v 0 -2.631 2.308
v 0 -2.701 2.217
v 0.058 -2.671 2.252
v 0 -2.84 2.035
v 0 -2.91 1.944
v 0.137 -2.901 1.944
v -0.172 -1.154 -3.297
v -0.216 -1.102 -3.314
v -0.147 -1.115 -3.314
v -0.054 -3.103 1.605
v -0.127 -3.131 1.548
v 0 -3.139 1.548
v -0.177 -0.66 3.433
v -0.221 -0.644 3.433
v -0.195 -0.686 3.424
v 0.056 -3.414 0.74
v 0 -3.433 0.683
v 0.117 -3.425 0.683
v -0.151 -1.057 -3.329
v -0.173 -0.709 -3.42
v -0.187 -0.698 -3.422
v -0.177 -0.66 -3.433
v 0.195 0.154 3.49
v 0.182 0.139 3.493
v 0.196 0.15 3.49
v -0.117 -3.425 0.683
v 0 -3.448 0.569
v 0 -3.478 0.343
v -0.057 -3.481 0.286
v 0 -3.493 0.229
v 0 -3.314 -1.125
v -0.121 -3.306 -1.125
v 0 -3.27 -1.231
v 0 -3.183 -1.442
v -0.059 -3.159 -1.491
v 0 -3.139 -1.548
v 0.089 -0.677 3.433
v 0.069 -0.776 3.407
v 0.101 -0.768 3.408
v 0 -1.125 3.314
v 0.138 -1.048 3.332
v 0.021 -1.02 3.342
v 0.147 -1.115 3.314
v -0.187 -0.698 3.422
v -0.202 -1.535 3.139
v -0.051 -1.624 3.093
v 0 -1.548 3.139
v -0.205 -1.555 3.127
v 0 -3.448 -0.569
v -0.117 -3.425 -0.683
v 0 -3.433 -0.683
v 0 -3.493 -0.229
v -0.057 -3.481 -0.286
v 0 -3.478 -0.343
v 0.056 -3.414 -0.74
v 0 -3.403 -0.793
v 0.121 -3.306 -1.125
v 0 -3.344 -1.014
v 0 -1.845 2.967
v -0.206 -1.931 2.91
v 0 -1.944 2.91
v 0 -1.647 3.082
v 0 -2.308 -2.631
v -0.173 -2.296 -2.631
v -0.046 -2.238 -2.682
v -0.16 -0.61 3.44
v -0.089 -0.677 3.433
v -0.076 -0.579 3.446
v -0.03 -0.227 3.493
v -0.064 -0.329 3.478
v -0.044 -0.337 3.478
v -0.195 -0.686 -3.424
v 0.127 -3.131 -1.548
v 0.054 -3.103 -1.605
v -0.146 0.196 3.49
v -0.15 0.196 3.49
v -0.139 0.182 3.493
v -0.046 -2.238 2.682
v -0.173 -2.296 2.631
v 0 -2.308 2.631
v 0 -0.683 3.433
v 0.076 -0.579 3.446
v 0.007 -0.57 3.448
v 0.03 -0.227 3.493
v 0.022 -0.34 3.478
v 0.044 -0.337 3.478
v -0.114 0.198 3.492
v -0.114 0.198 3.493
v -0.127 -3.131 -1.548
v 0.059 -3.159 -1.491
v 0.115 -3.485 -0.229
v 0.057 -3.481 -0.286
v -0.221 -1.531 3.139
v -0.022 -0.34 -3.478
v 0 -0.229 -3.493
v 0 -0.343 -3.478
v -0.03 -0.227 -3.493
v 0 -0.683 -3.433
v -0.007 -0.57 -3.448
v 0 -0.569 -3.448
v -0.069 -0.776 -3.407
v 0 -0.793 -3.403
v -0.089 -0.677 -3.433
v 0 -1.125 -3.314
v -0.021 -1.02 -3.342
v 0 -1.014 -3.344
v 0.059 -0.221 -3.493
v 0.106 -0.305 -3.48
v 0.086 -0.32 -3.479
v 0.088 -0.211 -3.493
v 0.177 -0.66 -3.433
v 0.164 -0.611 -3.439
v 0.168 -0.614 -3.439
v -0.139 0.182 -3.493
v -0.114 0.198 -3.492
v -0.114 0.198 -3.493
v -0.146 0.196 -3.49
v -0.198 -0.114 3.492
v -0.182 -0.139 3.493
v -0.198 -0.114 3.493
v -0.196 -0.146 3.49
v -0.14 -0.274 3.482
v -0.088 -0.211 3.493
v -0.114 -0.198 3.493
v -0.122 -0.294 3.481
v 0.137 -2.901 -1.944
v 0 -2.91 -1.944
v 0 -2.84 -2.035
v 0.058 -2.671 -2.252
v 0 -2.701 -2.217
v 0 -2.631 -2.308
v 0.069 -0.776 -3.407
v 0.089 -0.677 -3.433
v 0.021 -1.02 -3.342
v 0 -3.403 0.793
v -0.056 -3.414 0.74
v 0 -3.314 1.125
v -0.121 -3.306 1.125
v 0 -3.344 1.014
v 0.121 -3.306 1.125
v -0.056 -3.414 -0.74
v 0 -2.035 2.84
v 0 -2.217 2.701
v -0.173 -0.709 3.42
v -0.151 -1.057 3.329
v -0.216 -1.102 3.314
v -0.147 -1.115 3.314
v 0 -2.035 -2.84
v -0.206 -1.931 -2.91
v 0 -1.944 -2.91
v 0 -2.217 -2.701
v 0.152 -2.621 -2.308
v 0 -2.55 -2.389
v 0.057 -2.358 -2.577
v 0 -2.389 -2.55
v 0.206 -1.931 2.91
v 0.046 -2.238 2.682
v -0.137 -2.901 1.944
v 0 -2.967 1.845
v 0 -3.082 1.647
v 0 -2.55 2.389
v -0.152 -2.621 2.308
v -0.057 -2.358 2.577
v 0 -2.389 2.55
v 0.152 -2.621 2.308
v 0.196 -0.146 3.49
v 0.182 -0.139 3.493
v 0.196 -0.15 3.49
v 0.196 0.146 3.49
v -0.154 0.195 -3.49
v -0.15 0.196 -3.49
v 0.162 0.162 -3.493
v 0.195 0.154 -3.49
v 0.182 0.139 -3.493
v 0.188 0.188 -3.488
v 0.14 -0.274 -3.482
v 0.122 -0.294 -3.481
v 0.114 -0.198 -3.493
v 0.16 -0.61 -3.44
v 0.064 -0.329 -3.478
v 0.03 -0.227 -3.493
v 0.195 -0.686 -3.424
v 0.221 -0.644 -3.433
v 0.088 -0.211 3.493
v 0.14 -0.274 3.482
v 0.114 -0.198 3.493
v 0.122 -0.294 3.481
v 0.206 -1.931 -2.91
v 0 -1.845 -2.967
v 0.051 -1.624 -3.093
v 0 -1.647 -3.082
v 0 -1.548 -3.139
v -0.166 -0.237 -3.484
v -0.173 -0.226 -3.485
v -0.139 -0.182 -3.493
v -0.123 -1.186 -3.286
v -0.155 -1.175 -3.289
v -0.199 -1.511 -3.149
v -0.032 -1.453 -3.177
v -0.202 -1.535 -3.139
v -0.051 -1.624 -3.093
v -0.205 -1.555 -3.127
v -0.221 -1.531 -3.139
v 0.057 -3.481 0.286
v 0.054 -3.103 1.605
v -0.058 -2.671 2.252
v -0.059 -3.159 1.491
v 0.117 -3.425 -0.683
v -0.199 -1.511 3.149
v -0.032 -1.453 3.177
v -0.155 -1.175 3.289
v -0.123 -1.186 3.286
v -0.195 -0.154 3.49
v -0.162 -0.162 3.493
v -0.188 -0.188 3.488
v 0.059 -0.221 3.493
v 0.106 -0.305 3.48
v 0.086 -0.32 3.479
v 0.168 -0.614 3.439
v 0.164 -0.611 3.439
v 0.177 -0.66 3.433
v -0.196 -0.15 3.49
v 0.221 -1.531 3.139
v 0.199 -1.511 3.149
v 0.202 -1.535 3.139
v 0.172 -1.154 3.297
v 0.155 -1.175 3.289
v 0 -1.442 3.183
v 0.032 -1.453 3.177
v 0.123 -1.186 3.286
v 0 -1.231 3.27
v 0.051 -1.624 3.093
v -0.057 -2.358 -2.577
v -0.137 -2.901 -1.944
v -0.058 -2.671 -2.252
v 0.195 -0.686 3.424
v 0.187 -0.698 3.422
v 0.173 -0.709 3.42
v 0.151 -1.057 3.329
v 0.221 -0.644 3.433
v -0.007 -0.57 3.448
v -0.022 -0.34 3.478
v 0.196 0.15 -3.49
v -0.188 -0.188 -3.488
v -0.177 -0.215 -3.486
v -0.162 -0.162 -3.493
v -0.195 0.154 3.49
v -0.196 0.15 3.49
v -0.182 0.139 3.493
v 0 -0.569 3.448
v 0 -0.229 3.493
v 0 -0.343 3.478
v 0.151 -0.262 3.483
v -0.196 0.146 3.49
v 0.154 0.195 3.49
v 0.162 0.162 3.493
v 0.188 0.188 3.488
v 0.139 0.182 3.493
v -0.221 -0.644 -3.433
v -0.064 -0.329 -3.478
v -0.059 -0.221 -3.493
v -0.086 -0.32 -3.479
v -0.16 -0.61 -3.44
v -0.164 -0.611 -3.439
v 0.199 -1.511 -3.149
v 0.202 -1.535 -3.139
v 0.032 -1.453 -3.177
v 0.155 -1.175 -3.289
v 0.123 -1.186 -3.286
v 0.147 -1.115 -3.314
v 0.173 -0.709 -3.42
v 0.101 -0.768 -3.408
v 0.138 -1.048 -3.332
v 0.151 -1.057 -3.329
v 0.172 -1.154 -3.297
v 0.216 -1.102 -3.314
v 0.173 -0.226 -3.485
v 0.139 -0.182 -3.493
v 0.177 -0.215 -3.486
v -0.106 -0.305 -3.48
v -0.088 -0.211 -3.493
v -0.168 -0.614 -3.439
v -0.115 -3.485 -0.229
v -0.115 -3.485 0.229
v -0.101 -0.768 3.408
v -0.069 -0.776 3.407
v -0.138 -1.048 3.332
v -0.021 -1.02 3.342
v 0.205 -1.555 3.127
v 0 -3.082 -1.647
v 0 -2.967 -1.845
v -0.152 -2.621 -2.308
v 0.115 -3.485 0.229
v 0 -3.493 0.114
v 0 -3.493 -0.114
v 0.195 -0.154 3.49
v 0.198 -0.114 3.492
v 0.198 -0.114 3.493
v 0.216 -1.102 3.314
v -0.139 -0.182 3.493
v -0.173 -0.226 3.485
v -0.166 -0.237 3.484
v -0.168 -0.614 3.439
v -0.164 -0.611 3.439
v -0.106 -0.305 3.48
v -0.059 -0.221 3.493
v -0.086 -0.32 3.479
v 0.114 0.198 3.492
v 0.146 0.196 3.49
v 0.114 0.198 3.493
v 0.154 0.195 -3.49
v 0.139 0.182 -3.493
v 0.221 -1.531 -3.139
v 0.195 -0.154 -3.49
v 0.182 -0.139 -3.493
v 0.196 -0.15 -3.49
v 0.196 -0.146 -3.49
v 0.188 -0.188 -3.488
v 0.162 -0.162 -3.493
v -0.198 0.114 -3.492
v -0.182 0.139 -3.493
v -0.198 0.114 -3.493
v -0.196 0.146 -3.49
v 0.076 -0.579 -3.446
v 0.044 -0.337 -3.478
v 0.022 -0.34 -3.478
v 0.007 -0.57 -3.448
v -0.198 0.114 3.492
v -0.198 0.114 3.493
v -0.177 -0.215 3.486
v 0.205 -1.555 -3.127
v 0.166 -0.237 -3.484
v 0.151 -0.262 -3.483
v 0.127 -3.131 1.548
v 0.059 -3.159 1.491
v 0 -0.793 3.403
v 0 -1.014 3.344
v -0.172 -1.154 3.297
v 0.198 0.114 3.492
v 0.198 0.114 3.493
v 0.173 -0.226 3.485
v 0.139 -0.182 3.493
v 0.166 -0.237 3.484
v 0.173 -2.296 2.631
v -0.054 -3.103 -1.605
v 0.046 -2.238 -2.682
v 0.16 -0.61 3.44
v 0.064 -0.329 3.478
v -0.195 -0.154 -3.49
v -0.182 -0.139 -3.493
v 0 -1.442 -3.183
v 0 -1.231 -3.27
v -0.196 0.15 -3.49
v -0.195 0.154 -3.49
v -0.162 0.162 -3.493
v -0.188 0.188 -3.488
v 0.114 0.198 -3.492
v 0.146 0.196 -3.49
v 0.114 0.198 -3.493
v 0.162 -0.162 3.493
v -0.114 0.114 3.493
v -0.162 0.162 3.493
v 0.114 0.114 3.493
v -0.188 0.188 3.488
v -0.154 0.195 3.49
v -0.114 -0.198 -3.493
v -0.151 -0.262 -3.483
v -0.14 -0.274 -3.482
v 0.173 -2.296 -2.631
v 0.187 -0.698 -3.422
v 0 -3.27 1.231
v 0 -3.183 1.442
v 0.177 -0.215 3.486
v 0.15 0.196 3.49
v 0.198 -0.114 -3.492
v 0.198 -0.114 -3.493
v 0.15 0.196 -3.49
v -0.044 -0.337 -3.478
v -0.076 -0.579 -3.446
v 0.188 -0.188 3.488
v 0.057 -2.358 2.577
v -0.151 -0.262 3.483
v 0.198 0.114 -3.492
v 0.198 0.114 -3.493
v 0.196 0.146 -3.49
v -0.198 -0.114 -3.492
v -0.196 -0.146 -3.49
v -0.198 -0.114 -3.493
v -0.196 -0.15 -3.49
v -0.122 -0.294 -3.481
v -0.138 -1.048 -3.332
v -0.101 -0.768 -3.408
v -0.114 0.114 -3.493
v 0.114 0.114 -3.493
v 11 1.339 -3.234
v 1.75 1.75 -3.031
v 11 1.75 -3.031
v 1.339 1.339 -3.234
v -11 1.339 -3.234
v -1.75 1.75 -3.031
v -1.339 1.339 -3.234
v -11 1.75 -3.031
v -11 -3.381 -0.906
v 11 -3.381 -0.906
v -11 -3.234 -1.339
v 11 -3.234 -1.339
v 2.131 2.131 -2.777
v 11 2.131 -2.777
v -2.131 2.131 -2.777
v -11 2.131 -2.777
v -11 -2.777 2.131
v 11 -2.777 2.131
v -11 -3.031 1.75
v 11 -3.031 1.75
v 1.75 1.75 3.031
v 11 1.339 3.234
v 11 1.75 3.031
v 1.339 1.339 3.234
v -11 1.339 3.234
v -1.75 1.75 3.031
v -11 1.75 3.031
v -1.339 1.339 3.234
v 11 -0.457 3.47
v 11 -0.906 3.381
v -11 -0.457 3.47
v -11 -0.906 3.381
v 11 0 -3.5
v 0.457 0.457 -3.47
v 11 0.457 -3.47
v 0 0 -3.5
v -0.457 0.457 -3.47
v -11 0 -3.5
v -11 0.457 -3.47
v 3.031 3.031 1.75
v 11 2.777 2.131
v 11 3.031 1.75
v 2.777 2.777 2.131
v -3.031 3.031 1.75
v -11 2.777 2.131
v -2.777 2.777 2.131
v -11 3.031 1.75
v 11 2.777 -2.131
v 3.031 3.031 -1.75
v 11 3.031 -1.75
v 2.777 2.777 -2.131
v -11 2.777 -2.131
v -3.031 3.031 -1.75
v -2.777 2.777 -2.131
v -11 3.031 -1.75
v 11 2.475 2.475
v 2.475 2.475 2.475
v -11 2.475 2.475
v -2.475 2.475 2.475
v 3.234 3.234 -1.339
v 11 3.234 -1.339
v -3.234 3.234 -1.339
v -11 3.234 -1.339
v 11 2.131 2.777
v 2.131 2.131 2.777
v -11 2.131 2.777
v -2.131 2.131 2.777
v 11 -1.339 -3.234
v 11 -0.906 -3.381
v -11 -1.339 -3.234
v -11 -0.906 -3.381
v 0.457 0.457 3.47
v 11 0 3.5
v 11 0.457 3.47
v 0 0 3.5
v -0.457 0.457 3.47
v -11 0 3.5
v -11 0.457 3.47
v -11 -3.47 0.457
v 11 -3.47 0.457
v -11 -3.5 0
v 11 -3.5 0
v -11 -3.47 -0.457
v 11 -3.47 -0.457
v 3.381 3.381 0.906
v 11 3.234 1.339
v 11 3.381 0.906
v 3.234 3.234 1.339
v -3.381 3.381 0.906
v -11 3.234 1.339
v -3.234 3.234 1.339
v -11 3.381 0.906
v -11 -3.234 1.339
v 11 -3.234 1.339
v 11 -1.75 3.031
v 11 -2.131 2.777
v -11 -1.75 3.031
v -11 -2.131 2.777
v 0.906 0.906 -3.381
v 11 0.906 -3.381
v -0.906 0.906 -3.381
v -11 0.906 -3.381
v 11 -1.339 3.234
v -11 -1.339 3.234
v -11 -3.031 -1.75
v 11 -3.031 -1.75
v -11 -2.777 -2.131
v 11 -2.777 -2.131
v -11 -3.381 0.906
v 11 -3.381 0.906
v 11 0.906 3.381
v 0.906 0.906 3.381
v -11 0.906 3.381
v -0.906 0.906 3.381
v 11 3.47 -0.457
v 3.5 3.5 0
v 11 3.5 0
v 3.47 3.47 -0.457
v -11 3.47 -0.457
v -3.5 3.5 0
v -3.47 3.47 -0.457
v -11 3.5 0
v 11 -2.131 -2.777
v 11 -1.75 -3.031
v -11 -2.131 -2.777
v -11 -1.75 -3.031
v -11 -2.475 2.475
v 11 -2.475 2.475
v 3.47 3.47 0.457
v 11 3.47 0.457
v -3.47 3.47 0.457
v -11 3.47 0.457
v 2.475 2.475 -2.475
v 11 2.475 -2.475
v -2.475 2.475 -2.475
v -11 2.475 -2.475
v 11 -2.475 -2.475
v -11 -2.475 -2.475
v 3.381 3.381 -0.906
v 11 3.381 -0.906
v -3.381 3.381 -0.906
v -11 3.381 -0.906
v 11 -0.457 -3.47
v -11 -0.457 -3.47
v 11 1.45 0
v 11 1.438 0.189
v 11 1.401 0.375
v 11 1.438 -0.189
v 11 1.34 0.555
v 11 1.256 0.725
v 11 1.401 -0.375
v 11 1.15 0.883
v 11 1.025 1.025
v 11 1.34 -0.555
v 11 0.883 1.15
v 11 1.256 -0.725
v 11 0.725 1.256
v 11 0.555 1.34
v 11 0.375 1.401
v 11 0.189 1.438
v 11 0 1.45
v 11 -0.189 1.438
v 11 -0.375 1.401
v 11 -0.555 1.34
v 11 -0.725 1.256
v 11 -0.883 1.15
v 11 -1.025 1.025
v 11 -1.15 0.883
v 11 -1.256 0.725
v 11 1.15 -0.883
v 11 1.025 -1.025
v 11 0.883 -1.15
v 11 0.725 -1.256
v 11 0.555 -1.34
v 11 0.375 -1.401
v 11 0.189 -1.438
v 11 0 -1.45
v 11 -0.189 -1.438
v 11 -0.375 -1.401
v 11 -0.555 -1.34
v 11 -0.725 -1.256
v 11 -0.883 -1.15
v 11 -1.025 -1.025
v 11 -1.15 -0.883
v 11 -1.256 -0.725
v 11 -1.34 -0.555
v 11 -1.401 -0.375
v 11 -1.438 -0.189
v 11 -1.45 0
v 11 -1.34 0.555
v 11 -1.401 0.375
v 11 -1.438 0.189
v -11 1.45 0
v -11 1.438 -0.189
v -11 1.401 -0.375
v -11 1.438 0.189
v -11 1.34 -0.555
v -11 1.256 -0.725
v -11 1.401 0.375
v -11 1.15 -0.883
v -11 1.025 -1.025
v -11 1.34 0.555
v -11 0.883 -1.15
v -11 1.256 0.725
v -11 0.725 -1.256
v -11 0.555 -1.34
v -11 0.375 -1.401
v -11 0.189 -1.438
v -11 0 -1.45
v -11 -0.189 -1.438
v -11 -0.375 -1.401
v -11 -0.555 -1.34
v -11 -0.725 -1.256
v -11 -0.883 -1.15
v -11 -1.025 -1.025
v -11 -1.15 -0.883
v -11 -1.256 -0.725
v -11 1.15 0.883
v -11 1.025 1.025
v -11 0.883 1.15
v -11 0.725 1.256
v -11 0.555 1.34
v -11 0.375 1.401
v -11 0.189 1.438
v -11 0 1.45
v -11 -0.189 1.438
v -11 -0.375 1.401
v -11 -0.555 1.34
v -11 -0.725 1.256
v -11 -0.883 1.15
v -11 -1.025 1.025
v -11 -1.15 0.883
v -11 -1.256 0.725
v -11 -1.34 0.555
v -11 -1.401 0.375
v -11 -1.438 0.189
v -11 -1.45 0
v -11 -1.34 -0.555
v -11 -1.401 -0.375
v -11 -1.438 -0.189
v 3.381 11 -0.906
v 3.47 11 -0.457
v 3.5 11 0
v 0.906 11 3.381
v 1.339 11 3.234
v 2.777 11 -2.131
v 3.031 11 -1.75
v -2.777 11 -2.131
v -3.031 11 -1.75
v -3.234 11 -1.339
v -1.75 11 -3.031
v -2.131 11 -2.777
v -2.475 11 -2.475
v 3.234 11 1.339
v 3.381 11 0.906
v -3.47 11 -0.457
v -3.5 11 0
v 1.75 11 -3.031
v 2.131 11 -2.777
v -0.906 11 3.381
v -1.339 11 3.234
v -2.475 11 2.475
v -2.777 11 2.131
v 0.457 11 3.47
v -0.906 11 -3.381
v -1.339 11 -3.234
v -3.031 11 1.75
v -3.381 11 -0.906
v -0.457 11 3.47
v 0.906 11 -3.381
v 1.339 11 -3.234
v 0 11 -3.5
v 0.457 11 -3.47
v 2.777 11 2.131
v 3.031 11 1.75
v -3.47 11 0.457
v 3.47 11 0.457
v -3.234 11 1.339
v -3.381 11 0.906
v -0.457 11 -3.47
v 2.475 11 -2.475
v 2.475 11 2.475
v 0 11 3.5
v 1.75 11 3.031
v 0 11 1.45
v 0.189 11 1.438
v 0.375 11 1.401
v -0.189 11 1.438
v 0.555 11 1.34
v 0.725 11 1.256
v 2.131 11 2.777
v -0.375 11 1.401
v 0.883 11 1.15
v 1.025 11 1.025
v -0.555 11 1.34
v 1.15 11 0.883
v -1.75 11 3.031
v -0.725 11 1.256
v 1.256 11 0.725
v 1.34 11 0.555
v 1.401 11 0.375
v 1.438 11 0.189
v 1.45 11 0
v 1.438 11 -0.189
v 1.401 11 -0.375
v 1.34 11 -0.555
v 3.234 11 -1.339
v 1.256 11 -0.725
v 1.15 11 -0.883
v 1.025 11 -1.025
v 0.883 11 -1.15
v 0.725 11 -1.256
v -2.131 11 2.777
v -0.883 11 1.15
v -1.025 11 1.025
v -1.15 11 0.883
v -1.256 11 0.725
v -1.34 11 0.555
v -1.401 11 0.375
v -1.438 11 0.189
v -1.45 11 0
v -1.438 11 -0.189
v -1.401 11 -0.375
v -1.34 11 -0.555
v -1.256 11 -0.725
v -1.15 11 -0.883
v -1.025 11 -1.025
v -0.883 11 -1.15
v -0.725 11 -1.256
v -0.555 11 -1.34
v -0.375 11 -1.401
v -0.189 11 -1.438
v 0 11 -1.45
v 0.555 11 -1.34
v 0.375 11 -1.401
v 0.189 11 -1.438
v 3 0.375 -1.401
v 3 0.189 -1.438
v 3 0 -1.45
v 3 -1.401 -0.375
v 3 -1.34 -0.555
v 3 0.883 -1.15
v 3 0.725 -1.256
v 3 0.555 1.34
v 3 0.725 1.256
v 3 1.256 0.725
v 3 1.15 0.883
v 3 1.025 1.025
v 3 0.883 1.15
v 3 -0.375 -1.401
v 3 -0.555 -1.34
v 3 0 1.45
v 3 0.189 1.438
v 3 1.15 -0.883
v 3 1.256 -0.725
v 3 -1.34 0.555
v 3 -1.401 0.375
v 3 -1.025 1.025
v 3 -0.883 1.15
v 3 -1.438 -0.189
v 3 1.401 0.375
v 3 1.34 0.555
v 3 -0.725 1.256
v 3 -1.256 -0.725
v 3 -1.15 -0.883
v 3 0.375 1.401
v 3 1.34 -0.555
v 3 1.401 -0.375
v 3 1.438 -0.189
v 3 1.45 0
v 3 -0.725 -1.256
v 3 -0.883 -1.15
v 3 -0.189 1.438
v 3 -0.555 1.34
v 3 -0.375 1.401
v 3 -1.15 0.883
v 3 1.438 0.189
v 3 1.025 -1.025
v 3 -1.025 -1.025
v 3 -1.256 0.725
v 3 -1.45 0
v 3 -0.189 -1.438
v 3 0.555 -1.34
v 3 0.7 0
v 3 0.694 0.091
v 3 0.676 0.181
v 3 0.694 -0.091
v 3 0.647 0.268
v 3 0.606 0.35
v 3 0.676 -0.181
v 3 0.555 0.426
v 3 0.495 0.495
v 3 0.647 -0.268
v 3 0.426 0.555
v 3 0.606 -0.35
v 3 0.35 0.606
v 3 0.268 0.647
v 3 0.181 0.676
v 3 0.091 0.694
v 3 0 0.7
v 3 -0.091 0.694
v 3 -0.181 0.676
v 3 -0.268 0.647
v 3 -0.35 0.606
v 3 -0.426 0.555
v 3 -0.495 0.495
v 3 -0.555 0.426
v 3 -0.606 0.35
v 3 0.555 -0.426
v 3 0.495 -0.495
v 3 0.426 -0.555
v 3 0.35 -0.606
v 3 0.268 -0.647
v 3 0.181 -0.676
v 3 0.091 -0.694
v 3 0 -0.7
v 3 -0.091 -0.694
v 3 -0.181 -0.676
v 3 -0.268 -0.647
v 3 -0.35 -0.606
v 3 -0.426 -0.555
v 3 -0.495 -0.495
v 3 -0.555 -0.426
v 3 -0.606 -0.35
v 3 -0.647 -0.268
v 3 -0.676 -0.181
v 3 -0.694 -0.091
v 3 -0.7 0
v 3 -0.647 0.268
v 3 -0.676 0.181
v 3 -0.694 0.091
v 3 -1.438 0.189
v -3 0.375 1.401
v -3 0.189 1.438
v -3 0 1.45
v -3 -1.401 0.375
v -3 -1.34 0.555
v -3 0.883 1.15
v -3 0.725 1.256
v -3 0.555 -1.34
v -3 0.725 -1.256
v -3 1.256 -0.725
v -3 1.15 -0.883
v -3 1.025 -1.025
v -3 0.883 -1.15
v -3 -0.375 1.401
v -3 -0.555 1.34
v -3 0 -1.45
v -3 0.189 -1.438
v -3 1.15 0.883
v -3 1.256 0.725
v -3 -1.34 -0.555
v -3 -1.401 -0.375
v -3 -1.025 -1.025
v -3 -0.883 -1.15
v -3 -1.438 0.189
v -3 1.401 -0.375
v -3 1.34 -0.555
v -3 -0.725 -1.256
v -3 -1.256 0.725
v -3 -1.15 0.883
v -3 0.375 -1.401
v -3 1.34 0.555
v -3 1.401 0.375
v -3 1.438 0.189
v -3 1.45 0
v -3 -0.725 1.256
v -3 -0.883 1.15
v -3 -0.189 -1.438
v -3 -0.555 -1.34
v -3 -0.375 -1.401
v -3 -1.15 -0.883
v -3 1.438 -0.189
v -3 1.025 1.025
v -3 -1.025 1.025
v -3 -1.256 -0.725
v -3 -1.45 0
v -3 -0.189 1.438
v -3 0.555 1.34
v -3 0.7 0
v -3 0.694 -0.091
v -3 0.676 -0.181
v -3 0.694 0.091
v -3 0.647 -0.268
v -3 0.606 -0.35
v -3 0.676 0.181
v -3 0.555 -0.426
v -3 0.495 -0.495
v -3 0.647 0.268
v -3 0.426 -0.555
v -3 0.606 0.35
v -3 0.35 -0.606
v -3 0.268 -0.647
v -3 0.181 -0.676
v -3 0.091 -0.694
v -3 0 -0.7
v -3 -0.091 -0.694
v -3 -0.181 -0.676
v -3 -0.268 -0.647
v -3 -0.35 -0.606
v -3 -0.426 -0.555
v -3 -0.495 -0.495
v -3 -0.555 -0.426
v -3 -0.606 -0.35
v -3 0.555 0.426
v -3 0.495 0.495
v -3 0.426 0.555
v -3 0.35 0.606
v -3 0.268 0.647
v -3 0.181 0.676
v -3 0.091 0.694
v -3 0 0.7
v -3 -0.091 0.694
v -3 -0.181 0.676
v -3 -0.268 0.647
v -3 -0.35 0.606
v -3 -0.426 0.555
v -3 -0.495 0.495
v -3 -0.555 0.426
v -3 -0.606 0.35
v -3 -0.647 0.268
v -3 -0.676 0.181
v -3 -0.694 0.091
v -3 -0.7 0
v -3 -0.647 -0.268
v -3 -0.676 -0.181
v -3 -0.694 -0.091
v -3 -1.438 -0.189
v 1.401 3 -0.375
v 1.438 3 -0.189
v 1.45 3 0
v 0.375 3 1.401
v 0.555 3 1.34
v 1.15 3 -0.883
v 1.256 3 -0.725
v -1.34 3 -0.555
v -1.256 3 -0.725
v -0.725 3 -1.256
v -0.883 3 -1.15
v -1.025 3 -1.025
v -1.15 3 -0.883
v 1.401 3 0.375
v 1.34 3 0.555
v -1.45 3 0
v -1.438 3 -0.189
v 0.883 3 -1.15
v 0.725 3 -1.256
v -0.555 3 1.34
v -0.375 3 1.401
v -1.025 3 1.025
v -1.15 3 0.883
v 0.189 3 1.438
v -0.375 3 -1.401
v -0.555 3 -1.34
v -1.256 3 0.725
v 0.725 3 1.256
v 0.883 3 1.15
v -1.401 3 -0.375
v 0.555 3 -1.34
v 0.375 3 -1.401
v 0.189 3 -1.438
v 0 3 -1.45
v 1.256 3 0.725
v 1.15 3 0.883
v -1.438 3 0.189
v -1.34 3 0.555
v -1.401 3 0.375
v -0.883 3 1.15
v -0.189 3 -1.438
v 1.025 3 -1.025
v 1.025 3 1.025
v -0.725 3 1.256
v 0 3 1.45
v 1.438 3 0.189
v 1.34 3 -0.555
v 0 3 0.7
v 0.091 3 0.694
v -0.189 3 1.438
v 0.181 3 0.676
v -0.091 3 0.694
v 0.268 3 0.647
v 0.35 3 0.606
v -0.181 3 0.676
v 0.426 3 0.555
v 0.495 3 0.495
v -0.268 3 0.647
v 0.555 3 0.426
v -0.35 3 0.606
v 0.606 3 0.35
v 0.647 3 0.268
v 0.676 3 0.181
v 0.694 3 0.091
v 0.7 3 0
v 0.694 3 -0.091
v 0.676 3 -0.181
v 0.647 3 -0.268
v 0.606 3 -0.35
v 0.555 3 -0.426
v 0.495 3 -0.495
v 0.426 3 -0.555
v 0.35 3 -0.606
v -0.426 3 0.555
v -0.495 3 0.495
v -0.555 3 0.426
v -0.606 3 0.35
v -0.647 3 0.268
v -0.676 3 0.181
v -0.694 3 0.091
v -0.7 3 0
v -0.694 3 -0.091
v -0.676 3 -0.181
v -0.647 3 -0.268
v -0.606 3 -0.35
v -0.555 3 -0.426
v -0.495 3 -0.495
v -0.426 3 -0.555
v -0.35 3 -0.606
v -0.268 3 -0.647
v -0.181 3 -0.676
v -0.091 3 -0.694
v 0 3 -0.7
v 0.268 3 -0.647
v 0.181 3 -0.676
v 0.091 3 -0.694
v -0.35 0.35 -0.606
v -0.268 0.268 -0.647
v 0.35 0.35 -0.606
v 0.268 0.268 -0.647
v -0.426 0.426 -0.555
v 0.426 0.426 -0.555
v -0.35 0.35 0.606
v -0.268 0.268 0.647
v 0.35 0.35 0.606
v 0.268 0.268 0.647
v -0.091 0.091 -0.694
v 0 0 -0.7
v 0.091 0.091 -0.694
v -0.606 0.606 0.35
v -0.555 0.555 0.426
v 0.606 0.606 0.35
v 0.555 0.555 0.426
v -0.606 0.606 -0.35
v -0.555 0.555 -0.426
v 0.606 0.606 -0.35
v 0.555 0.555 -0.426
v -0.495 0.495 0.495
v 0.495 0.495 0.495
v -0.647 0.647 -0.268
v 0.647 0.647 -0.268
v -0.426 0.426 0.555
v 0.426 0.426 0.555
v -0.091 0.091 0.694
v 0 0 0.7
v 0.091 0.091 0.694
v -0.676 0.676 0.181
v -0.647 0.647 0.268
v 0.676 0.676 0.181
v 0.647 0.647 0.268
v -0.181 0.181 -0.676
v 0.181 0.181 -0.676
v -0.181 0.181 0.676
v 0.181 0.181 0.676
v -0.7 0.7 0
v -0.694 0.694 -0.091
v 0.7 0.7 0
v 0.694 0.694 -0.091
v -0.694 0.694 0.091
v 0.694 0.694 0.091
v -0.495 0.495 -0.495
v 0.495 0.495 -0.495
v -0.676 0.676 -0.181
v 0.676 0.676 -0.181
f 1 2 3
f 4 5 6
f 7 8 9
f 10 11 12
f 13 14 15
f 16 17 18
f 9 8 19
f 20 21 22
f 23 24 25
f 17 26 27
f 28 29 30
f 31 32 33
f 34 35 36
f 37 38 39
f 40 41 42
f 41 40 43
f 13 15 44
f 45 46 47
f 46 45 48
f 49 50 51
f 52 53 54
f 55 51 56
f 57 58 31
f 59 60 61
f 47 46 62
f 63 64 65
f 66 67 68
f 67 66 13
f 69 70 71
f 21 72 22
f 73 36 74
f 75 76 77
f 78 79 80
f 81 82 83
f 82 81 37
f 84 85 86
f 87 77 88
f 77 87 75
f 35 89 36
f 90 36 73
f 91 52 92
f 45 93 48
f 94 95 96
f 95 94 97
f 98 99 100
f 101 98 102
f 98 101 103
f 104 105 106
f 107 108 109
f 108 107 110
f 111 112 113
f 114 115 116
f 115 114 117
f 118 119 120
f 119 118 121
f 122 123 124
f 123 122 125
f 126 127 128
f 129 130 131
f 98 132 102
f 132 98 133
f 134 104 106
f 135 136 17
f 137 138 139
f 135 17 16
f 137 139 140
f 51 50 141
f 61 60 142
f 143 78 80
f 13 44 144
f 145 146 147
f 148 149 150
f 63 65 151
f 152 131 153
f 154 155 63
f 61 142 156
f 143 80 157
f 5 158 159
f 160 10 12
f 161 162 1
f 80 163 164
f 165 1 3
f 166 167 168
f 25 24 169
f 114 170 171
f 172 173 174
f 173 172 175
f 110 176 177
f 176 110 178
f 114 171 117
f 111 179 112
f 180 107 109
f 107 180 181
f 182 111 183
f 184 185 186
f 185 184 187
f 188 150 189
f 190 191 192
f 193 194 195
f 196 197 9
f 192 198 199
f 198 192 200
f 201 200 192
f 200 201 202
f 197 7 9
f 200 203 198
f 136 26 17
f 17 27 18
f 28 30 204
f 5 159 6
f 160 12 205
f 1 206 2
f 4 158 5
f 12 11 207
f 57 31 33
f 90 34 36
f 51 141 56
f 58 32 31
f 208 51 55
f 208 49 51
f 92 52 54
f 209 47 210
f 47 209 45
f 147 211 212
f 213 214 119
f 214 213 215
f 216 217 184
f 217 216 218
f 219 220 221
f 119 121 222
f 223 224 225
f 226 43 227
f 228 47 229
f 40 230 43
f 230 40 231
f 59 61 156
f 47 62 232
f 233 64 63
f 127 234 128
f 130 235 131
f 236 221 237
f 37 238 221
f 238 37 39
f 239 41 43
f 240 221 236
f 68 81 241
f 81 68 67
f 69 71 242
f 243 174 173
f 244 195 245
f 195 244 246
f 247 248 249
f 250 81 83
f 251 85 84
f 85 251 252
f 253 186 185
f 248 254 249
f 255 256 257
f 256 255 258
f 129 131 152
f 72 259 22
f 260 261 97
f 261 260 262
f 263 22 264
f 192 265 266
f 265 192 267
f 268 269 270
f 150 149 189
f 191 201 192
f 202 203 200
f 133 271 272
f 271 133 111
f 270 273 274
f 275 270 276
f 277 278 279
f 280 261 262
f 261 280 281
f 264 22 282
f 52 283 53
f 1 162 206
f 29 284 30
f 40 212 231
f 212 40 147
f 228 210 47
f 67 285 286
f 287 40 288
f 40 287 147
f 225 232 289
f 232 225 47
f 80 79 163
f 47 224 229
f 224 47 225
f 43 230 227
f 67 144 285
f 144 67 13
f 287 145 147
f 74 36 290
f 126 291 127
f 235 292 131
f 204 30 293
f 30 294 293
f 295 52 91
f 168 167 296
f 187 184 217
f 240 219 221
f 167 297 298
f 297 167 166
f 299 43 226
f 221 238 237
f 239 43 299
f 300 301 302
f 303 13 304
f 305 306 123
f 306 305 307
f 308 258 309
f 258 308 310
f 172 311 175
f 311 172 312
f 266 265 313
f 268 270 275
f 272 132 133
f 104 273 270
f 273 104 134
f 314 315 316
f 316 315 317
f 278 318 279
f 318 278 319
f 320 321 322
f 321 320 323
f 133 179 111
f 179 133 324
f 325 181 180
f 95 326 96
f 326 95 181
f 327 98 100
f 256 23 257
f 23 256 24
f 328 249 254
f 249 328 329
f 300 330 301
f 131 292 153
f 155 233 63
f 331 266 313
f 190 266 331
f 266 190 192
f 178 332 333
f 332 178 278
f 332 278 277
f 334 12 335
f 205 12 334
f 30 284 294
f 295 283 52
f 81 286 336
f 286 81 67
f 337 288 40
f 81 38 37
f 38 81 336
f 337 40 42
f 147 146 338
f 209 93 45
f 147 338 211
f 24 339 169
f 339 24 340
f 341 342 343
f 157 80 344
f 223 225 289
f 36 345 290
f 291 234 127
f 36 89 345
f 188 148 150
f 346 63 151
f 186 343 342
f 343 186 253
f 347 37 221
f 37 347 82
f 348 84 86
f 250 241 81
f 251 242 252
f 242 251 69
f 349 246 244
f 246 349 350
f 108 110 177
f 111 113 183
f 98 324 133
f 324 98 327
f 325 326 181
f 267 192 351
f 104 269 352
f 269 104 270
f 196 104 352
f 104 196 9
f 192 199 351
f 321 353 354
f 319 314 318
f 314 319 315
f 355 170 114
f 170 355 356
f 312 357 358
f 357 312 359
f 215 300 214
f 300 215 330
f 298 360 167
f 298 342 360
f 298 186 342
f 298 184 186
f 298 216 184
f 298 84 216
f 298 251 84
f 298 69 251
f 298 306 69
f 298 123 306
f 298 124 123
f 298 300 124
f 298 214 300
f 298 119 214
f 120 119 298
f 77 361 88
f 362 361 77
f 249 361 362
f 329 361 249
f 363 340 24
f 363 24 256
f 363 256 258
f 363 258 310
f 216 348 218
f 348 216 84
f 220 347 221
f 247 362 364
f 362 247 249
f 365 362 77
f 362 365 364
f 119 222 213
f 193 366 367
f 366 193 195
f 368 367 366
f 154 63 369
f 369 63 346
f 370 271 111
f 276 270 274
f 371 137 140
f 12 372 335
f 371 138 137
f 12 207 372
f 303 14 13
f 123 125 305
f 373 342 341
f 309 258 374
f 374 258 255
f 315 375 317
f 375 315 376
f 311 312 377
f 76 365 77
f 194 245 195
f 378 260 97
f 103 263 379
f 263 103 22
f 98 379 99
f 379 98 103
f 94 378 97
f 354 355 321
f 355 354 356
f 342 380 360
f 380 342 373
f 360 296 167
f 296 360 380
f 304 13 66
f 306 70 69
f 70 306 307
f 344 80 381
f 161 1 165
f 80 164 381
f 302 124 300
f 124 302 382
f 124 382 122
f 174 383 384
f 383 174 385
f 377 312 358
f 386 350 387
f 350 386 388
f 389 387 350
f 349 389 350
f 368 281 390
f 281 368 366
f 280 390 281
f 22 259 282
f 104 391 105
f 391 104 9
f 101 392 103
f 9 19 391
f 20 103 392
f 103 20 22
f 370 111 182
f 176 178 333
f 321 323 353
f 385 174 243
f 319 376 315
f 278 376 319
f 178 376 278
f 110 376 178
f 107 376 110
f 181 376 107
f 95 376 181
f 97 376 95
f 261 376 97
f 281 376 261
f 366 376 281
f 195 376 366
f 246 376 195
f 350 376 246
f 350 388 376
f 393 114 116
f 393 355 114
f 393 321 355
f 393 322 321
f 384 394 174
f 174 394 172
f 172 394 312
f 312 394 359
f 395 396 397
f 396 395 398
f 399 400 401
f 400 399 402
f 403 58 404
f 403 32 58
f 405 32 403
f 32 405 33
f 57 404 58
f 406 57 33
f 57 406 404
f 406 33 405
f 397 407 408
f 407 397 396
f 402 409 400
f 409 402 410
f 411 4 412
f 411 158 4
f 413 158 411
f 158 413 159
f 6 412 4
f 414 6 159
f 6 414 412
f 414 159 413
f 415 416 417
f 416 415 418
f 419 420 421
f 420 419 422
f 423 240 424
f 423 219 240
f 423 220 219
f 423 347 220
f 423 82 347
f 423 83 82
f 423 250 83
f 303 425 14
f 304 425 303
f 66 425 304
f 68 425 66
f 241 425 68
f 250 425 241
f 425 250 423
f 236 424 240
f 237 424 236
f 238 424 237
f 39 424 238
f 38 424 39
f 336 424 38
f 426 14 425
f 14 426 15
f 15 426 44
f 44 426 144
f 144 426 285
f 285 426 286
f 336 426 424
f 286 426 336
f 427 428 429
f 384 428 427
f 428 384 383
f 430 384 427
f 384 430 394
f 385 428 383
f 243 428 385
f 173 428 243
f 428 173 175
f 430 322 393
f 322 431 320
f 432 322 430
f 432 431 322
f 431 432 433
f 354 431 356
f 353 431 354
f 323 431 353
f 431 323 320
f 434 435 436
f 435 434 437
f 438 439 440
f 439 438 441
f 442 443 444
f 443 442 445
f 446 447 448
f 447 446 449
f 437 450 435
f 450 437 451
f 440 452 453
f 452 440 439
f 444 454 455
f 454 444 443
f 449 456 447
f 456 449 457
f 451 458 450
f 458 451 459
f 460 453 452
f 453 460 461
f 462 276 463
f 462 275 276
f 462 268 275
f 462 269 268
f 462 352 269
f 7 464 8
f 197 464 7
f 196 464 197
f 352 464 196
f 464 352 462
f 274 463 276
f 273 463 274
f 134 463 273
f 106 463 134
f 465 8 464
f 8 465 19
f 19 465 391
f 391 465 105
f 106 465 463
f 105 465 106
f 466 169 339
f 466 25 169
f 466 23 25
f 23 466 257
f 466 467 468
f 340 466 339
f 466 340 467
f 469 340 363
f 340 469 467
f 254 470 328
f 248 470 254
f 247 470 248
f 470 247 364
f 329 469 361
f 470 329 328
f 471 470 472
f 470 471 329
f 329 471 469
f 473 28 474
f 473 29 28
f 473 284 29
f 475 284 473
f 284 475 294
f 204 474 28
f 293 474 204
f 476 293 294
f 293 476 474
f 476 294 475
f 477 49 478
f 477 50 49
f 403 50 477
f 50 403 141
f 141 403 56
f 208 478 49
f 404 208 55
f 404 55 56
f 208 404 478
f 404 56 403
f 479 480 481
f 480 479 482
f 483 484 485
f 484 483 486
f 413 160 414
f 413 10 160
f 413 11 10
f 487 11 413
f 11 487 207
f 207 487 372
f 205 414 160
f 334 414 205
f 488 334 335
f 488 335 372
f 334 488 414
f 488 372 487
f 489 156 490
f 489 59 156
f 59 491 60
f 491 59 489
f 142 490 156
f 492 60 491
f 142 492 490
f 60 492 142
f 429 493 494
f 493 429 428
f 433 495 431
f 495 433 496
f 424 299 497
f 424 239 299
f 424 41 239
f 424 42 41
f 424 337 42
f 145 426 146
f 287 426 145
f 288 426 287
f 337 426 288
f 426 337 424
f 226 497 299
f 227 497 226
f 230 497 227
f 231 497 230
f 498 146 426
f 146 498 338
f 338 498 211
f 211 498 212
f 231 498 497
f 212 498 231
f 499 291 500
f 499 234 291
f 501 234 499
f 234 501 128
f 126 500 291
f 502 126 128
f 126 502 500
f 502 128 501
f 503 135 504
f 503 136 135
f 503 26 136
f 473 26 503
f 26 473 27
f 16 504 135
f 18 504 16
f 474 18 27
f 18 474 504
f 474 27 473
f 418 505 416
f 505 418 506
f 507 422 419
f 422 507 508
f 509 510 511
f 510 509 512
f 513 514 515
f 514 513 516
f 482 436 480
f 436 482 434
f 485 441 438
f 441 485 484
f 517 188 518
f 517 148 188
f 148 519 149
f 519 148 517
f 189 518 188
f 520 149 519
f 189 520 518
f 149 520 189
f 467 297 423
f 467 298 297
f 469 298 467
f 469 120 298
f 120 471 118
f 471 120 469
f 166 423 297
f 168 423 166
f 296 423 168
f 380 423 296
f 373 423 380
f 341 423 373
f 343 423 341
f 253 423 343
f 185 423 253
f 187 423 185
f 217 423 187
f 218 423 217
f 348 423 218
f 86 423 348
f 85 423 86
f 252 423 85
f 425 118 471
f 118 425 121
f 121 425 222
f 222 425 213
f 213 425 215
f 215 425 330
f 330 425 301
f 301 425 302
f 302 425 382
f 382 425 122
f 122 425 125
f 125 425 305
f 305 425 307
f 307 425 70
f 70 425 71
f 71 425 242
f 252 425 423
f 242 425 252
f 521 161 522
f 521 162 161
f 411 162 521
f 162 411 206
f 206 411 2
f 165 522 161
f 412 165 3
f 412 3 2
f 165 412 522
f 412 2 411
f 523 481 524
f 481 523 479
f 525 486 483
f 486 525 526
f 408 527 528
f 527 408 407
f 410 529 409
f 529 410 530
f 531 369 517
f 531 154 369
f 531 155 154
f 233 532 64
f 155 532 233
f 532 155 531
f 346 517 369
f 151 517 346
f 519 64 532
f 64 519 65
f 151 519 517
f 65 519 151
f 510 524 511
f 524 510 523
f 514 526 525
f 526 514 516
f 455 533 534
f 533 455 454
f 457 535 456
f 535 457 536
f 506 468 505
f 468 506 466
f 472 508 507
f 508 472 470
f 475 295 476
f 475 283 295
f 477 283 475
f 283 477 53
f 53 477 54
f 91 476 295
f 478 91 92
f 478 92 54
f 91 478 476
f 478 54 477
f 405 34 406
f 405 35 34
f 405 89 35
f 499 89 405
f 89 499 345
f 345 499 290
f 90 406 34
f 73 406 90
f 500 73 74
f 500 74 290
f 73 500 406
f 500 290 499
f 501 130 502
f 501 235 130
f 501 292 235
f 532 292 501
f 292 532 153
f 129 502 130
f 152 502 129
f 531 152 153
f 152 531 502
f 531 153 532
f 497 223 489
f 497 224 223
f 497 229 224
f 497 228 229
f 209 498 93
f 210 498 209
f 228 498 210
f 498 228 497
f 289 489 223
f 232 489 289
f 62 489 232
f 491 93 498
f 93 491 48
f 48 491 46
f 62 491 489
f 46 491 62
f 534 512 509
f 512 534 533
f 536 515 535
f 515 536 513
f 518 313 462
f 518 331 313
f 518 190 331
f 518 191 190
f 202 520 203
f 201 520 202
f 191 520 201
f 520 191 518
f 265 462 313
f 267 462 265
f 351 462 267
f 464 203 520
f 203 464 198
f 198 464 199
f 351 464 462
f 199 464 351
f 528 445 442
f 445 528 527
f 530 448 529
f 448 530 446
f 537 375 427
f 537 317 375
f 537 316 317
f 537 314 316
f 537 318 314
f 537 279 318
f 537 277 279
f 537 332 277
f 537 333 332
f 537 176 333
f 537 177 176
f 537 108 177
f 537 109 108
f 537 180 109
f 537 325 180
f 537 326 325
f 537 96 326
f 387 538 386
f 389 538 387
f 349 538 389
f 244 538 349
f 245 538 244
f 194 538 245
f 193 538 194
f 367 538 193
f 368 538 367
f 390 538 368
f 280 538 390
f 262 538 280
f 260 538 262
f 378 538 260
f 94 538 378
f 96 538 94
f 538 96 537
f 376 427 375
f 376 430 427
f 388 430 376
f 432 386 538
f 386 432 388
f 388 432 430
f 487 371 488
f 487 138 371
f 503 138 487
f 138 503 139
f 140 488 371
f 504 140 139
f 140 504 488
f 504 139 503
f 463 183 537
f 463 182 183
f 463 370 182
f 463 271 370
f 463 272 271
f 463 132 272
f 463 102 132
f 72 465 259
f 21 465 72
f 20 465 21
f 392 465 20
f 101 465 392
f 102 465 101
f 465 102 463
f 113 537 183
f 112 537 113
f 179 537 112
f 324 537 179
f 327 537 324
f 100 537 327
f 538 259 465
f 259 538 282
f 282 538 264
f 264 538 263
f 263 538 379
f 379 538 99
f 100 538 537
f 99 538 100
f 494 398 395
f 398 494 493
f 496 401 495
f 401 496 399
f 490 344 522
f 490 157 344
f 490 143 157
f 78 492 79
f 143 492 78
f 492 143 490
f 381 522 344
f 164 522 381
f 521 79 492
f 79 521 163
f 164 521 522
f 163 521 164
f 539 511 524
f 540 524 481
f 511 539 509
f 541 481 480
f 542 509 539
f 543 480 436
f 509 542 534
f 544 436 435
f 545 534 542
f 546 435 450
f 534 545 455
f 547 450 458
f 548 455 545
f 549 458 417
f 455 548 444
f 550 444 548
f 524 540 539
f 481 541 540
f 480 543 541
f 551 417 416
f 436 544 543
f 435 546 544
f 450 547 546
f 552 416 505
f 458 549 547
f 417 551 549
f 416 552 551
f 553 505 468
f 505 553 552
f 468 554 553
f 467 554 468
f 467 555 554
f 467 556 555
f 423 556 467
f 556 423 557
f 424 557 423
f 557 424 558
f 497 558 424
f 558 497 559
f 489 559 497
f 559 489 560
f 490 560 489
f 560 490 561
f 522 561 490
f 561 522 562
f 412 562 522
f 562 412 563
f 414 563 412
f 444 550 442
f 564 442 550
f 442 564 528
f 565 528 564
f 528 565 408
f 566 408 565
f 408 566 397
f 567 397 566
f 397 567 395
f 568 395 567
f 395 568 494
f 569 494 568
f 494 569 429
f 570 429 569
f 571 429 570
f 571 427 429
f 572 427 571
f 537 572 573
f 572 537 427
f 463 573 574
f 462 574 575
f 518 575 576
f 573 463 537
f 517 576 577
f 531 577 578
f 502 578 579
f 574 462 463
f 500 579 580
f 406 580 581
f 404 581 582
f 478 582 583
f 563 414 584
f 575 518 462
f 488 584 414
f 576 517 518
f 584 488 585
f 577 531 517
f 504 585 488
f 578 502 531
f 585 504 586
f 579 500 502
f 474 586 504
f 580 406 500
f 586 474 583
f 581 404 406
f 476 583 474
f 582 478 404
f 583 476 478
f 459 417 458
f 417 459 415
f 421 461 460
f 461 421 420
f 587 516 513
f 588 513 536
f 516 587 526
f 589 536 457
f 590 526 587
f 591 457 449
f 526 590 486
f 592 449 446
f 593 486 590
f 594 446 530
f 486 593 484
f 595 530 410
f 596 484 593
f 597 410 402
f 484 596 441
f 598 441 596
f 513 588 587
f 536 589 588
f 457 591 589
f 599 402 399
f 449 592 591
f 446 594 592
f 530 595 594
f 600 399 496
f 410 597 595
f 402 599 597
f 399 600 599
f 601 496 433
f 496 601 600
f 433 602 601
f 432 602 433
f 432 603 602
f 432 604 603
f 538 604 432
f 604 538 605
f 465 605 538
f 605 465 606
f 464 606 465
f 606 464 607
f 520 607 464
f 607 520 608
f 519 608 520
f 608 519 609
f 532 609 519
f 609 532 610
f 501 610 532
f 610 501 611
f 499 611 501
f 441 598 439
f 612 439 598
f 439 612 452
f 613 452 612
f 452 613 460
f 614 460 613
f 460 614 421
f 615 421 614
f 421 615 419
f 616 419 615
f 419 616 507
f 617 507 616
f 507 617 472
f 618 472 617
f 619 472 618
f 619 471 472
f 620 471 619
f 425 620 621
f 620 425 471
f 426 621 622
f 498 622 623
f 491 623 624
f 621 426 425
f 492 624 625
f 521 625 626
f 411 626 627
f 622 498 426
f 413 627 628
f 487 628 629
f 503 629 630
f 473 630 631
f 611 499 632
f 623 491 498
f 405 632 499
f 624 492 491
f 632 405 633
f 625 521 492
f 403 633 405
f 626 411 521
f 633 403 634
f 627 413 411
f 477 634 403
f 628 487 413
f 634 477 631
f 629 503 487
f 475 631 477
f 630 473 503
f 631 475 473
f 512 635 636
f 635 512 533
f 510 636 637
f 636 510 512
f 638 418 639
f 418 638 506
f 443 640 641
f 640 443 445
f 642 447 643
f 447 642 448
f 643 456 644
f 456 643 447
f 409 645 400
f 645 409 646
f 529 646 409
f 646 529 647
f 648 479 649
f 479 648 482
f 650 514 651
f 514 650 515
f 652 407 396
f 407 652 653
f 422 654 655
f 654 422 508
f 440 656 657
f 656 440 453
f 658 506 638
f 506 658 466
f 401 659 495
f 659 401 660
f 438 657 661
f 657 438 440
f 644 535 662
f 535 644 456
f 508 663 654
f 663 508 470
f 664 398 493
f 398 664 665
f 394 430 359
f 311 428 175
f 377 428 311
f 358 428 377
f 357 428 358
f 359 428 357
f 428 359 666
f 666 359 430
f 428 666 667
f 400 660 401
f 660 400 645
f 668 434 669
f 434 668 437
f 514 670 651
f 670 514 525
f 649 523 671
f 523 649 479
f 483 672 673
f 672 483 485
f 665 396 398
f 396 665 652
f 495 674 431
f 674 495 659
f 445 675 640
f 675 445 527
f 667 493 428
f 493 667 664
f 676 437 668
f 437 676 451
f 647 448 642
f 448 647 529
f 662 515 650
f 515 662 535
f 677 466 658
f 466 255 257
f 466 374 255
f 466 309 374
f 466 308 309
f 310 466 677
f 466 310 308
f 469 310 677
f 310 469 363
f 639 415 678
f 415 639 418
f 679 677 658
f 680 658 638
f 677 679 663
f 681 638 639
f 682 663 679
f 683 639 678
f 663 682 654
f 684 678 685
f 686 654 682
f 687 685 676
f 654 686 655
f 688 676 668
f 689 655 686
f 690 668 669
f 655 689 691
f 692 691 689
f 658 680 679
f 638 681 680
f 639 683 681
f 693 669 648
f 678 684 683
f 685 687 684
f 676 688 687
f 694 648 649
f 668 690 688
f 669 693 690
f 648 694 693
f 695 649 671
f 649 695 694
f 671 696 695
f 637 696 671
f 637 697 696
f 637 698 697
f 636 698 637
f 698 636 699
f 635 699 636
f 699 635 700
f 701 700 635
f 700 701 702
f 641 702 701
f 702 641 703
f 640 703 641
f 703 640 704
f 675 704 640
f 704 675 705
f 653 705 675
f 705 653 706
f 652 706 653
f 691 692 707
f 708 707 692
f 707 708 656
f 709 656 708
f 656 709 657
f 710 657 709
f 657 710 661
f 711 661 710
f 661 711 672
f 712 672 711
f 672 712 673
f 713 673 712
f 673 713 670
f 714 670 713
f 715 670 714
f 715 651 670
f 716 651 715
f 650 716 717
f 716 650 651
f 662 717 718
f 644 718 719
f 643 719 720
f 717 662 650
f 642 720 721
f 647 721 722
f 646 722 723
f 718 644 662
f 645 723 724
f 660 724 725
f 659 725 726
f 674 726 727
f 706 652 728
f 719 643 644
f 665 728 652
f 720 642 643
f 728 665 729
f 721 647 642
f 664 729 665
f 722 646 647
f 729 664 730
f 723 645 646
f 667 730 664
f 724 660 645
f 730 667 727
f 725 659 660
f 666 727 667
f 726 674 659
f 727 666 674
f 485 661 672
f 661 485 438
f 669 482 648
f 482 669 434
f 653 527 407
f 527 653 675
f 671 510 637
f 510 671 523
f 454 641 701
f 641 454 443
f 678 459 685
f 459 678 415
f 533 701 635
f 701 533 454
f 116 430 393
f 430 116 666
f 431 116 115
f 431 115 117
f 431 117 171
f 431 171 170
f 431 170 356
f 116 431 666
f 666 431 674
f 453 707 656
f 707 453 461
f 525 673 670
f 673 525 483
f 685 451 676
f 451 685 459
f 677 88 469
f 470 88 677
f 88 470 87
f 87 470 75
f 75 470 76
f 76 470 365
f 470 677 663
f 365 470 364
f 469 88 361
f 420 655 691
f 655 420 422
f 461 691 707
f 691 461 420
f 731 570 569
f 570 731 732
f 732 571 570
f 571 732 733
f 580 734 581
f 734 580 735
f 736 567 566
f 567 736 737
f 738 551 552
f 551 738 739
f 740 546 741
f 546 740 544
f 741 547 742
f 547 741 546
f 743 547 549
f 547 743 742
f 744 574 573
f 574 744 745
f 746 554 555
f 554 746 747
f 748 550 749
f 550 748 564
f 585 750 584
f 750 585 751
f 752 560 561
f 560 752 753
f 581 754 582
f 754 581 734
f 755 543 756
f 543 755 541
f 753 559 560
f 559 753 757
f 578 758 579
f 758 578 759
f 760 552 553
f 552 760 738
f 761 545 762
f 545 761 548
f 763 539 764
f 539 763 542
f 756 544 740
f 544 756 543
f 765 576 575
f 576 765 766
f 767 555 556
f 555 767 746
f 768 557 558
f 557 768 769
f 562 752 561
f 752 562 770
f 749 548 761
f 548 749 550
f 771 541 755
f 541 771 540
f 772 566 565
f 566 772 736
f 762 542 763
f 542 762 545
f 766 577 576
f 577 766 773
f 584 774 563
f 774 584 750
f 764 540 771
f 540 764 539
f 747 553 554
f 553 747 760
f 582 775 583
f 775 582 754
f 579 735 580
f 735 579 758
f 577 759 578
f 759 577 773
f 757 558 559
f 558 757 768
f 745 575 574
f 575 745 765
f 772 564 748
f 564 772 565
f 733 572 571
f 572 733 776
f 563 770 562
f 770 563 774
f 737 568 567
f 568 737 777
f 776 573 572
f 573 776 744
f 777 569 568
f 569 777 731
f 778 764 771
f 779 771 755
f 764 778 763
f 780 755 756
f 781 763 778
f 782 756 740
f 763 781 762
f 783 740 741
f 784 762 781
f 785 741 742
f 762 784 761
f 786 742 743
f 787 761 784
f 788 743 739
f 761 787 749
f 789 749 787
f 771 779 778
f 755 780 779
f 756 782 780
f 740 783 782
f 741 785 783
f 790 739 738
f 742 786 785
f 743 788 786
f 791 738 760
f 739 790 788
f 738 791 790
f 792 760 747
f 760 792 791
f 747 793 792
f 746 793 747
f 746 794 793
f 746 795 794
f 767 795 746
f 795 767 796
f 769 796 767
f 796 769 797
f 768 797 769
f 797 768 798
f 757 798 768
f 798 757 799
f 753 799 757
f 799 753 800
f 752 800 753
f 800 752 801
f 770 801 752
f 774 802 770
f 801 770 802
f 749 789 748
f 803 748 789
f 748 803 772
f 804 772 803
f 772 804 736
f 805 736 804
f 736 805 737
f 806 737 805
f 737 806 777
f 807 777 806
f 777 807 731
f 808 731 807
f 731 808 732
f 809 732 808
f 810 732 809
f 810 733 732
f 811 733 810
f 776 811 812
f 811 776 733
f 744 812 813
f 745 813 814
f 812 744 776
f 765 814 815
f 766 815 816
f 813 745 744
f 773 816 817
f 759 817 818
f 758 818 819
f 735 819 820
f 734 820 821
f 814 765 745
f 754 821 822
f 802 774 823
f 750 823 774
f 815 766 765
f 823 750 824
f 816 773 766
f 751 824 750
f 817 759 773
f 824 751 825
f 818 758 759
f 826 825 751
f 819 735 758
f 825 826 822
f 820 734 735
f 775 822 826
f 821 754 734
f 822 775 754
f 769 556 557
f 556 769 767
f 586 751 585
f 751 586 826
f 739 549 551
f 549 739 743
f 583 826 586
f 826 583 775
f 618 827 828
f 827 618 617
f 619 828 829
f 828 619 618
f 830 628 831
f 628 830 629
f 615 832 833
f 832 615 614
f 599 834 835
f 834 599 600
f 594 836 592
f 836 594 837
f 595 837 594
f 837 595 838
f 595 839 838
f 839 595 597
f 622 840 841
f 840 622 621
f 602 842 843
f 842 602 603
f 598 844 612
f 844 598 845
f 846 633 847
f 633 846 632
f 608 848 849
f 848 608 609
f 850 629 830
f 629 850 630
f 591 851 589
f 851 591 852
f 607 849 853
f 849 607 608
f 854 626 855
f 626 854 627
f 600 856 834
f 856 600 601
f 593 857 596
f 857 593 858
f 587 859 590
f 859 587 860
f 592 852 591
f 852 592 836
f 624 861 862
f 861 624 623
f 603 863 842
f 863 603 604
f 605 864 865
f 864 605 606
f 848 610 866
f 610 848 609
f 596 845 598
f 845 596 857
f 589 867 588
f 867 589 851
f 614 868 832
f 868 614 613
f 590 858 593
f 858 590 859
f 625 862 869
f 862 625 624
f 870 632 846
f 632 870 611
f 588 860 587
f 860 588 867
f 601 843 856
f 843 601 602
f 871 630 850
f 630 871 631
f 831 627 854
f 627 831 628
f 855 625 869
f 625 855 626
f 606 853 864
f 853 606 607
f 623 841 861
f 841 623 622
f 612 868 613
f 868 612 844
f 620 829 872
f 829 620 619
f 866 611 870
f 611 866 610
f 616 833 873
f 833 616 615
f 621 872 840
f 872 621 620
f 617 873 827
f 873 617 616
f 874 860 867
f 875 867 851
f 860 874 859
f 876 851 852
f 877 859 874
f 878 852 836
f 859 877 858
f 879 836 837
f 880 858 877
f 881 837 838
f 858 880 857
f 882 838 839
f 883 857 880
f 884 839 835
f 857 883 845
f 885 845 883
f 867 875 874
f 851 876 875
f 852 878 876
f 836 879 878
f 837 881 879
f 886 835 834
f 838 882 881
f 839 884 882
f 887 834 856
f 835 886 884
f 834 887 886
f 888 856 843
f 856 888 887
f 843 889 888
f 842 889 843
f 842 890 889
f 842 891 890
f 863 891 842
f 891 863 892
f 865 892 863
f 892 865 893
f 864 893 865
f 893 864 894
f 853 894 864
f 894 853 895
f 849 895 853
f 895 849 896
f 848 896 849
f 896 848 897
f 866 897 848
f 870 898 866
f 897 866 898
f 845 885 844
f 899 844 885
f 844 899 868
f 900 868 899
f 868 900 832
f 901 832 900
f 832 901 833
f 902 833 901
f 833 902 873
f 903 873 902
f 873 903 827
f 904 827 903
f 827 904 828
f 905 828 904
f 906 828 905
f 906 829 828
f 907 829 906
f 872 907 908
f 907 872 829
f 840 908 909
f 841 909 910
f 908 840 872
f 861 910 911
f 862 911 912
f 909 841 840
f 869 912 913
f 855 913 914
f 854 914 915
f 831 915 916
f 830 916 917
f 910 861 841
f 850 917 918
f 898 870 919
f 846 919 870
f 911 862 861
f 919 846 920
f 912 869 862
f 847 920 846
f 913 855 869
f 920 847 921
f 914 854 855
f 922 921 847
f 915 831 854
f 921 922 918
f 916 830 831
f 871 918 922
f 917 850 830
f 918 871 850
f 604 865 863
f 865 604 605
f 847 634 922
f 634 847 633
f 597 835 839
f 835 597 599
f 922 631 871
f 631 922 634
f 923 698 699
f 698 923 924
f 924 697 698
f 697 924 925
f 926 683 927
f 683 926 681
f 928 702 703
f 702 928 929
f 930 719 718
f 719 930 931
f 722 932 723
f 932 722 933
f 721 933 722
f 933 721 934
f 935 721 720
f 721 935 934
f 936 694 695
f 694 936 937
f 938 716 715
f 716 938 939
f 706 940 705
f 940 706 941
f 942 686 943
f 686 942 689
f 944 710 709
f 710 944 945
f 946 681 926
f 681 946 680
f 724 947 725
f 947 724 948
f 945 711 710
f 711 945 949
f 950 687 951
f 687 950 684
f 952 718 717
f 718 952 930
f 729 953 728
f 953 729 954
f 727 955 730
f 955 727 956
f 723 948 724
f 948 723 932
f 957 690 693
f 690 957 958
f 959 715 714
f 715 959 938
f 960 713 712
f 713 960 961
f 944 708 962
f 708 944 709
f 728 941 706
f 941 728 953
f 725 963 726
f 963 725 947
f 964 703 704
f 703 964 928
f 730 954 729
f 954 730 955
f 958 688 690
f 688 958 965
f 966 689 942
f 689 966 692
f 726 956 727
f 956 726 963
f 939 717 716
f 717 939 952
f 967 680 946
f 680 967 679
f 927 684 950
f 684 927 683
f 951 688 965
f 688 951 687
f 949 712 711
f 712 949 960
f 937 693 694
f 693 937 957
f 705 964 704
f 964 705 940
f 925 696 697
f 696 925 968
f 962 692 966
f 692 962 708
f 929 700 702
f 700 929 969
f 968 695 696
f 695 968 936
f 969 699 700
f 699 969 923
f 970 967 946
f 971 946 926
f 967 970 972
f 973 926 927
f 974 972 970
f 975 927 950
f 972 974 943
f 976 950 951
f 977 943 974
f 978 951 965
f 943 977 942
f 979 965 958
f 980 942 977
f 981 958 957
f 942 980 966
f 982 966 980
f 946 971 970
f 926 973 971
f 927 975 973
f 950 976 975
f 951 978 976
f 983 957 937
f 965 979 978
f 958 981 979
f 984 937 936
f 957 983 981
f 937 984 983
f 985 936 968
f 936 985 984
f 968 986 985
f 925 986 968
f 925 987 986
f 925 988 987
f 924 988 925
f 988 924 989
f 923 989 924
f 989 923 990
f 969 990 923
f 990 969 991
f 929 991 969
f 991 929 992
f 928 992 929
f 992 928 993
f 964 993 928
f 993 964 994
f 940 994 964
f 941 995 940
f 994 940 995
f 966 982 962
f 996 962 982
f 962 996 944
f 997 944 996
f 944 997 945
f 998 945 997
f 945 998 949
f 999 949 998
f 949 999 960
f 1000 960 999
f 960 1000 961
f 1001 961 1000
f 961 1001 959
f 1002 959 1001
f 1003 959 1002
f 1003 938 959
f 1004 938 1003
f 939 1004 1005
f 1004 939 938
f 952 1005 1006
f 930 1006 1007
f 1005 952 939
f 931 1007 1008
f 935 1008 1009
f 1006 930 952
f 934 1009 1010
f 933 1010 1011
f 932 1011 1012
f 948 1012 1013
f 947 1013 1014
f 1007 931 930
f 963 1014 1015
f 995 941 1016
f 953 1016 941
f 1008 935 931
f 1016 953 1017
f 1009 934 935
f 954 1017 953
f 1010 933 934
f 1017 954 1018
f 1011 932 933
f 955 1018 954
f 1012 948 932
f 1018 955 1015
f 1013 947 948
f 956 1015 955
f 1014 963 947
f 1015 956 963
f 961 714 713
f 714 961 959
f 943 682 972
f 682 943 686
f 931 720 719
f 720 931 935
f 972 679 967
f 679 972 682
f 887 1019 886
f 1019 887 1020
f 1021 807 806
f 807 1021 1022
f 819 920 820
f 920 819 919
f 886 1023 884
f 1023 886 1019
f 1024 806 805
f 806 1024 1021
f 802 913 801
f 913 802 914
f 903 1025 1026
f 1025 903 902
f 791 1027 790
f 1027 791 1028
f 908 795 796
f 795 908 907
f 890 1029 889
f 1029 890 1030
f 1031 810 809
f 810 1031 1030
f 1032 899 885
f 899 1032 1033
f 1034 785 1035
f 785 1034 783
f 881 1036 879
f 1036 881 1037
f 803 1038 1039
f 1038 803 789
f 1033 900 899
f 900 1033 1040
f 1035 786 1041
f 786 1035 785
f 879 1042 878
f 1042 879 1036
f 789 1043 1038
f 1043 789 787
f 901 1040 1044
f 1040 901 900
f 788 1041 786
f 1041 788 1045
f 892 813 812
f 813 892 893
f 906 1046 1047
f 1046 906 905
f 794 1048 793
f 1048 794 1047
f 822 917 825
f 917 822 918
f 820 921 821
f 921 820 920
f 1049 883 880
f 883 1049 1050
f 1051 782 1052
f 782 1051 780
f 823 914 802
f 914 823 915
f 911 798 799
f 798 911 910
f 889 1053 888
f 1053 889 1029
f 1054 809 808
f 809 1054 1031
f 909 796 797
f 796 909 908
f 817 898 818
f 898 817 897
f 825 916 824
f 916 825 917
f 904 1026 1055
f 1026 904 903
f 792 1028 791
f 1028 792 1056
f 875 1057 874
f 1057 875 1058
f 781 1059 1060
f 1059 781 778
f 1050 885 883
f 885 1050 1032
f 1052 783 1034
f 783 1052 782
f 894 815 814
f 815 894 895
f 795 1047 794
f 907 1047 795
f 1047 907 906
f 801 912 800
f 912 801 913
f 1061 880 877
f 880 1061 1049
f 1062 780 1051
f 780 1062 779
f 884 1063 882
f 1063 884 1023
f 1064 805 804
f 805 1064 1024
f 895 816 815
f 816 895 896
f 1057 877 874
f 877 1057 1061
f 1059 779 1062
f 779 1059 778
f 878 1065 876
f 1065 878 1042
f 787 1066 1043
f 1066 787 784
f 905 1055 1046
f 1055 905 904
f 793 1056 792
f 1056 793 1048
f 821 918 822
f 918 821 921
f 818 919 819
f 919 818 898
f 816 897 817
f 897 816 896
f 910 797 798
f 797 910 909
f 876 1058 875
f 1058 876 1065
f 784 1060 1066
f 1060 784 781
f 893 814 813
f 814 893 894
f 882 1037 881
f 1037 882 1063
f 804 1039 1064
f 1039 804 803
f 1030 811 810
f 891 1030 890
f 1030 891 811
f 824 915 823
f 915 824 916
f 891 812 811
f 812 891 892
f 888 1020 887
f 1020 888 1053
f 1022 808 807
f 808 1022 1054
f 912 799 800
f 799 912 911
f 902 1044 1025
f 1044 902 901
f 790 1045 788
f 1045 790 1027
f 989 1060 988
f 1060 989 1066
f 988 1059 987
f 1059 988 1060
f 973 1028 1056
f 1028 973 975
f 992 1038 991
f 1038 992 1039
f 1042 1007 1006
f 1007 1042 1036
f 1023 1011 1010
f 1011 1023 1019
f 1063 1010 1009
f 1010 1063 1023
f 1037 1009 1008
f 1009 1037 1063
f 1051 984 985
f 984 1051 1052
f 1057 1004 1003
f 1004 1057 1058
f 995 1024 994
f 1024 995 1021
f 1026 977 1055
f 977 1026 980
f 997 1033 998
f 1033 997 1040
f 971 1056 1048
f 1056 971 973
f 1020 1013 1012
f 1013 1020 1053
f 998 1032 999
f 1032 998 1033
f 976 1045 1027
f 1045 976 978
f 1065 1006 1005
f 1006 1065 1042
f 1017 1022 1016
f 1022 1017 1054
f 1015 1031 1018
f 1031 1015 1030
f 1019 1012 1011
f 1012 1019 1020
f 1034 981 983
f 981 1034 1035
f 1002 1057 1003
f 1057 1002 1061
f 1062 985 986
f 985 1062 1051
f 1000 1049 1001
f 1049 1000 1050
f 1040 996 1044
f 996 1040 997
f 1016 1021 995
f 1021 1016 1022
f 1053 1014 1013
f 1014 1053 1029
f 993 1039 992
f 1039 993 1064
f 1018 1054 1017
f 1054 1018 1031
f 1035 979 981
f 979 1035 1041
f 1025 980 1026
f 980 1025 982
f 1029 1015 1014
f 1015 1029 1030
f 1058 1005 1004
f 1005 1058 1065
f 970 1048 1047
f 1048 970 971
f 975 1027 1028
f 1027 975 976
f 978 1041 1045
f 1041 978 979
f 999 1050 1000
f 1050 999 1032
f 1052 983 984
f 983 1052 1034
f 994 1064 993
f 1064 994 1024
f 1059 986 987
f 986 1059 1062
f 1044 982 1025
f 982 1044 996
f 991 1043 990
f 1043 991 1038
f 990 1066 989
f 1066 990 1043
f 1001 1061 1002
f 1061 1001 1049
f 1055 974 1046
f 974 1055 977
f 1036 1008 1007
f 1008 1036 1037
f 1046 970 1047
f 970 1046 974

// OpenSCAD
// socket T for tubing with 3 mm OUTER diameter. tube pushes INTO each arm. mm.
$fn = 48;
tube_od = 3;
fit     = -0.1;   // press fit; set to +0.1 if the tube won't go in
bore    = 1.4;    // air path, keep under the tube's ID
socket  = 8;      // tube insertion depth
wall    = 2;
arm     = socket + 3;
od      = tube_od + wall * 2;

module arm_solid() { cylinder(h = arm, d = od); }
module arm_hole()  {
  cylinder(h = socket, d = tube_od + fit);
  cylinder(h = arm + 1, d = bore);
}

difference() {
  union() {
    sphere(d = od);
    rotate([0, 90, 0])  arm_solid();
    rotate([0, -90, 0]) arm_solid();
    rotate([-90, 0, 0]) arm_solid();
  }
  // sockets open at the arm ends, so flip each hole to start from the tip
  for (r = [[0, 90, 0], [0, -90, 0], [-90, 0, 0]])
    rotate(r) translate([0, 0, arm - socket]) arm_hole();
  // center bore joining the three arms
  rotate([0, 90, 0]) cylinder(h = arm * 2, d = bore, center = true);
  rotate([-90, 0, 0]) cylinder(h = arm, d = bore);
}
